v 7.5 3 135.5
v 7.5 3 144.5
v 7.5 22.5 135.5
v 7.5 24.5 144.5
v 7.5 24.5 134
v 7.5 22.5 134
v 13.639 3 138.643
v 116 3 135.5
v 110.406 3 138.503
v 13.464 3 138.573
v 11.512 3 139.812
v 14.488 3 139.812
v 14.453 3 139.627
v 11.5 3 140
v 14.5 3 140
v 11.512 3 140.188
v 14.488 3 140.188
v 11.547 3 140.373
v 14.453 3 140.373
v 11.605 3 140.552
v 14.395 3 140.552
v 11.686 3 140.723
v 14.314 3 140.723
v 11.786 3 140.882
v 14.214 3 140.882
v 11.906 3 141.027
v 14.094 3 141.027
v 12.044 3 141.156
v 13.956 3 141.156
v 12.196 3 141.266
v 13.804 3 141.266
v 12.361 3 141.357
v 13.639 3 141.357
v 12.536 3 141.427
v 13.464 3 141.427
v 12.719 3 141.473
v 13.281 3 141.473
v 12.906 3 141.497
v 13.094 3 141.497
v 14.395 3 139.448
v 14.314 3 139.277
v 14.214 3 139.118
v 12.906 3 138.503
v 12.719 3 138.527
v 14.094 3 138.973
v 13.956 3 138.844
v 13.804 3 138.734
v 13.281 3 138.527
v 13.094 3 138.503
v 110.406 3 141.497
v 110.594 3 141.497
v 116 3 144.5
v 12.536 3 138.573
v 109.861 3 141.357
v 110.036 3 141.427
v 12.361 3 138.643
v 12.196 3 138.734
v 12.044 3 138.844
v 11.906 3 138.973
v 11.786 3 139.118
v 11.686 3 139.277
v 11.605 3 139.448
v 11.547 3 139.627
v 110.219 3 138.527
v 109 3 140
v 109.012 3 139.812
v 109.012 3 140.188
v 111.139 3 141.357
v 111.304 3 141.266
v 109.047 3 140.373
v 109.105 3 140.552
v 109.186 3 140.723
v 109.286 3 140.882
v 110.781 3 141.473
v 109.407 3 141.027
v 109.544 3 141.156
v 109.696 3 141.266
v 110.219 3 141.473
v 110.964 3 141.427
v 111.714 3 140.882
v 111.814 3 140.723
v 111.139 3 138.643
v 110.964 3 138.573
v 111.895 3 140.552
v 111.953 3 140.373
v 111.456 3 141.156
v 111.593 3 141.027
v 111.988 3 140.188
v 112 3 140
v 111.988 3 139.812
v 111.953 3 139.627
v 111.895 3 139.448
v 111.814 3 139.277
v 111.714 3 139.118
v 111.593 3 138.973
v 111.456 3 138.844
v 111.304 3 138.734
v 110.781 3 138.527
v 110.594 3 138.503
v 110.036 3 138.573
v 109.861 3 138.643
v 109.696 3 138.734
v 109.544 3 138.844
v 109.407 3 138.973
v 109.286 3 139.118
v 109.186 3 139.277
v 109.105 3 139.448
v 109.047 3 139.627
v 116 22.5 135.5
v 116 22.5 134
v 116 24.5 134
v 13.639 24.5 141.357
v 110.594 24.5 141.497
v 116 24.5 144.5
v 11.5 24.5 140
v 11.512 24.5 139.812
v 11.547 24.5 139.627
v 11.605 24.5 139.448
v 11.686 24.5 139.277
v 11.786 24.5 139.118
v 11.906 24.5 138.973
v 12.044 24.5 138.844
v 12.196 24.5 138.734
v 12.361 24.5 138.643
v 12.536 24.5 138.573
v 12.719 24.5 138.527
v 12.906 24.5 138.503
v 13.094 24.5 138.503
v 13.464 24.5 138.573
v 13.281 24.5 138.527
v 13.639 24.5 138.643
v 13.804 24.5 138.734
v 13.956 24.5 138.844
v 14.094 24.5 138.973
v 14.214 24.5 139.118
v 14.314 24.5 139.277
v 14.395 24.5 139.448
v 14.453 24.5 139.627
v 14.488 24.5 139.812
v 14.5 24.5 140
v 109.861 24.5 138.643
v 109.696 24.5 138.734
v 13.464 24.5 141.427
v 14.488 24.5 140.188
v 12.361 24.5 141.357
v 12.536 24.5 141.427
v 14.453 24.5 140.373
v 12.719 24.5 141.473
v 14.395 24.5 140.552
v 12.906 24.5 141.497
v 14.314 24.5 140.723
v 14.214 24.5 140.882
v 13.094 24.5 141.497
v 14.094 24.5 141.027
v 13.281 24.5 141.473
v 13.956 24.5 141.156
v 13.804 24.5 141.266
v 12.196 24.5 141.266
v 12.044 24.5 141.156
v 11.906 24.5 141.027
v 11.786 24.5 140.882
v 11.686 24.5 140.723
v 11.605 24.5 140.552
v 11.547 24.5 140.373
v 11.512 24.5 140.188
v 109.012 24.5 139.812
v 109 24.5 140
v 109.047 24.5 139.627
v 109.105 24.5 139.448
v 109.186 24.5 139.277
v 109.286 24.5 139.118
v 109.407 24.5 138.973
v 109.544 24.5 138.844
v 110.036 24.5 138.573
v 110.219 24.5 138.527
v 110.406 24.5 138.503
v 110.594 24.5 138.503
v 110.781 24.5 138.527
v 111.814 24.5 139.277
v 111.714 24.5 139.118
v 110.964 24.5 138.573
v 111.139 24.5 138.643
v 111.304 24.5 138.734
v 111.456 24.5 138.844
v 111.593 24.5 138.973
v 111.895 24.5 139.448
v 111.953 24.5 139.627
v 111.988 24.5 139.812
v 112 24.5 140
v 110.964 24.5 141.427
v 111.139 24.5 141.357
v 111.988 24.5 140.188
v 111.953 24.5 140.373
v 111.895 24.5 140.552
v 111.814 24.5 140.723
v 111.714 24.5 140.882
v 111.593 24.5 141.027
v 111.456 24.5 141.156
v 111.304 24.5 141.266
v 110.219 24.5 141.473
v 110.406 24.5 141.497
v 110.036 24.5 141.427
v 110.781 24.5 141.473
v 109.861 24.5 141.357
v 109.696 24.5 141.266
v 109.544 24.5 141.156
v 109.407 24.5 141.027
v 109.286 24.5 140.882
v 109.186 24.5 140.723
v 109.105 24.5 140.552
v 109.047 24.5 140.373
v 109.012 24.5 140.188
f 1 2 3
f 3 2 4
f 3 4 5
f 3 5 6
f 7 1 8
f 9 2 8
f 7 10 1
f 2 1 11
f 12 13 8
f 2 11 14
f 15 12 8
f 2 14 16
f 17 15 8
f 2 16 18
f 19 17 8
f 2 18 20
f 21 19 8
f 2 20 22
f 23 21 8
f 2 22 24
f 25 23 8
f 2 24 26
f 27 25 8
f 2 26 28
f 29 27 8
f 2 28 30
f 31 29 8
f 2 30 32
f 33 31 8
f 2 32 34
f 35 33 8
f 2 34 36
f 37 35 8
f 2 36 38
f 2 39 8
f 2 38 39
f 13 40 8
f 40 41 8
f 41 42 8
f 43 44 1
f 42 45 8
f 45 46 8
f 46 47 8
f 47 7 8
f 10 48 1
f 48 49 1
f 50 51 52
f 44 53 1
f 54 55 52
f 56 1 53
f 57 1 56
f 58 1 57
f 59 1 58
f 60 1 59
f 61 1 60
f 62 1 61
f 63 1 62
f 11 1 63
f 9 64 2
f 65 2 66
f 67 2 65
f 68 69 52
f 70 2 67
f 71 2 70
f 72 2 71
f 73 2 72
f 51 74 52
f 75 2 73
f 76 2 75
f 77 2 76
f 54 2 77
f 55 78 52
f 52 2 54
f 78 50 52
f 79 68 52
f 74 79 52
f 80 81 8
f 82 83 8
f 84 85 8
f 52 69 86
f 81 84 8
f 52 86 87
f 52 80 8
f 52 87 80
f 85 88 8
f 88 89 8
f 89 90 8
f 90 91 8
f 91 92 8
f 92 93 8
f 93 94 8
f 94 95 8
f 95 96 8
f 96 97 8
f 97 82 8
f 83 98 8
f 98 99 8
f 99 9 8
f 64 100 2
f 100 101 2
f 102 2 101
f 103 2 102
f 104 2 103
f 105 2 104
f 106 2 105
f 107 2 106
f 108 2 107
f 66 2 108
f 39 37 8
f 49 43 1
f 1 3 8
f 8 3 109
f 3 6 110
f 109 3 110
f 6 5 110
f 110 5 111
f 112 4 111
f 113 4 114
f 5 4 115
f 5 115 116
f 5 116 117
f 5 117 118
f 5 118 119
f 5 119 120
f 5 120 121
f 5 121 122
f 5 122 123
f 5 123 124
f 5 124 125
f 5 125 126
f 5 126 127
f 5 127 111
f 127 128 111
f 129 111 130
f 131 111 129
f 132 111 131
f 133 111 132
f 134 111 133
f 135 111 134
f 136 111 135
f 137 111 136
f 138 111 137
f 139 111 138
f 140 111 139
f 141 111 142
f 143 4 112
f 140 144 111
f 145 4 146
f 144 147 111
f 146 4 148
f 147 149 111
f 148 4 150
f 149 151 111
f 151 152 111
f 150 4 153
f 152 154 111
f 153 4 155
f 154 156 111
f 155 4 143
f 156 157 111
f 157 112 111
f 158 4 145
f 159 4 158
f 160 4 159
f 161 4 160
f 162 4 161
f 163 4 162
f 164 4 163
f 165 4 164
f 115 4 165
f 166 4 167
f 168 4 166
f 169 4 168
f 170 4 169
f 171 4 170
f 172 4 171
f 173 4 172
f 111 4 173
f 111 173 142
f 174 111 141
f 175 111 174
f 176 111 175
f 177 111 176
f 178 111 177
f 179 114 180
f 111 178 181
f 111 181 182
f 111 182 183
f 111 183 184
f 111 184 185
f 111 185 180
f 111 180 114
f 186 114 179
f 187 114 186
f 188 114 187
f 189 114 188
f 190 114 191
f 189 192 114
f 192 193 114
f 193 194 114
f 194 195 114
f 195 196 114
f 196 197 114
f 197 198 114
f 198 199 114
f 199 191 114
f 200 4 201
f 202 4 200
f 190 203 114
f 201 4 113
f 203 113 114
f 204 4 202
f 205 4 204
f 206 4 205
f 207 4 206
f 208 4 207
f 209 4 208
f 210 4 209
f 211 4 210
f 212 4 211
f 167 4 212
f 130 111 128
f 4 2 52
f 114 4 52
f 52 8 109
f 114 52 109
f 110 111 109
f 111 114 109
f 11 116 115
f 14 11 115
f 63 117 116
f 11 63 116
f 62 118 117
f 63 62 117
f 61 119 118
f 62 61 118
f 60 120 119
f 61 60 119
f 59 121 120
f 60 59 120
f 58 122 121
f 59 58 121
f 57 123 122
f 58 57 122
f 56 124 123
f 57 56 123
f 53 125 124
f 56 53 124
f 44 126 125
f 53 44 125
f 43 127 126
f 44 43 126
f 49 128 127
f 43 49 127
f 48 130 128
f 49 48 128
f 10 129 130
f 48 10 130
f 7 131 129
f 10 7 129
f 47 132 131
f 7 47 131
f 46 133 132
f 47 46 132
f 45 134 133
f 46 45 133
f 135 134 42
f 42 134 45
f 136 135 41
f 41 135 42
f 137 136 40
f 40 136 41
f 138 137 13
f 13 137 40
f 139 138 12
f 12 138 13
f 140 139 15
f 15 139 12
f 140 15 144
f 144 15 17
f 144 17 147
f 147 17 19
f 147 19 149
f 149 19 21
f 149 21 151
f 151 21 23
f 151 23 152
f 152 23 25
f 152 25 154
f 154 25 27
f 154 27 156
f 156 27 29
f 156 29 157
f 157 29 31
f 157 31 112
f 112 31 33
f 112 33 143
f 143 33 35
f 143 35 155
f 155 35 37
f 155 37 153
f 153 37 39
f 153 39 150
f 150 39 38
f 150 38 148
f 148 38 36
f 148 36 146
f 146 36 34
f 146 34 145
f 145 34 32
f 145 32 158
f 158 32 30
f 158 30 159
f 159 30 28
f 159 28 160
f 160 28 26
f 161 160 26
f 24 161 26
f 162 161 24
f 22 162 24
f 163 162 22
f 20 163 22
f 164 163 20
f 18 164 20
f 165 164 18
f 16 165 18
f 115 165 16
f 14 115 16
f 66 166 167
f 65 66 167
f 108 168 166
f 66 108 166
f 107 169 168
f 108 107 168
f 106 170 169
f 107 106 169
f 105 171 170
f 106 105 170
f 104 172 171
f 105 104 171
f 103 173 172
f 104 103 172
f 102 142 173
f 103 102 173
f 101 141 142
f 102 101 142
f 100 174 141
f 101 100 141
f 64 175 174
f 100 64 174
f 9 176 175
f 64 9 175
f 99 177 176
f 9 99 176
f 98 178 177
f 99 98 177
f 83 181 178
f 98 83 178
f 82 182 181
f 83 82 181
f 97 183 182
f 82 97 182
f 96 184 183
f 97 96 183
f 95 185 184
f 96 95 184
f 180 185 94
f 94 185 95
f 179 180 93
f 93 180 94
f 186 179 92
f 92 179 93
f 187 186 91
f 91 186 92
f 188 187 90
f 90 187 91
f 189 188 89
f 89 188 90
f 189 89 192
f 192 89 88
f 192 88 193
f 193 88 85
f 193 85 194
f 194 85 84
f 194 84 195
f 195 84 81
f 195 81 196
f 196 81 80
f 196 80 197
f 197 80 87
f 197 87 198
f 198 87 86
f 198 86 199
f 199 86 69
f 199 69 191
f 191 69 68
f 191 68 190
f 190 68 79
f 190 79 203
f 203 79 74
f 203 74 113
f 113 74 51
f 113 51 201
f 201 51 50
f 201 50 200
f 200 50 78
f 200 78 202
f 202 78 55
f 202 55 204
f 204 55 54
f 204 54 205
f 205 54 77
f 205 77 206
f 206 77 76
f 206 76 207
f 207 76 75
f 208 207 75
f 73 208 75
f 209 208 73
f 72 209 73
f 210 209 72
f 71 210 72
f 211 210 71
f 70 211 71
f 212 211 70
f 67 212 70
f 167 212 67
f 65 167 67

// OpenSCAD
$fn = 50;

ra = 20;
rv = 30;

hia = 30;
bia = 17.0;
lia = 108.5;

sp = 3;

d = 3;

h = 150;
hl = 140;
b = bia + d + 2*sp;
l = lia + d + 2*sp;


ba = 7;
la = 10;

a1 = 4 + sp;
a2 = a1 + 33;
a3 = a2 + 54;

ang = 14;


spa = 2;
da = 0.7;

ro = 5;
bk = 5;
rs = 6/2;
rsb= 3.2/2;
lo = 75;

lls = 15;
angs = 8;

Wr = 8;

rla = 10;
rli = 1.7;
rlisd = 3;

rhla = 15;

anglh = 20;

%difference(){
	
	union(){
		rotate([angs,0,0]){
			difference(){
				cube([l+2*d,b+2*d,h+2*d]);
	
				translate([d,d,d]) cube([l,b+2*d,h+2*d]);
				translate([d+lls,-d,d]) cube([l-lls*2,b+2*d,h+2*d]);
	
			}
		}
		translate([0,-rla,rla]) rotate([0,90,0]) cylinder(r=rla,h=d);
		translate([0,-rla,0]) cube([d,rla,2*rla]);
		translate([lia+sp*2+d*2,-rla,rla]) rotate([0,90,0]) cylinder(r=rla,h=d);
		translate([lia+sp*2+d*2,-rla,0]) cube([d,rla,2*rla]);
		translate([0,-rhla,+h-d]) rotate([0,90,0]) cylinder(r=rhla,h=d);
		translate([0,-rhla,+h-d]) rotate([anglh+180,0,0])cube([d,rhla,3*rhla]);
		translate([lia+sp*2+d*2,-rhla,+h-d]) rotate([0,90,0]) cylinder(r=rhla,h=d);
		translate([lia+sp*2+d*2,-rhla,+h-d]) rotate([anglh+180,0,0])cube([d,rhla,3*rhla]);

	}
	translate([-1,-rla,rla]) rotate([0,90,0]) cylinder(r=rli,h=lia+sp*2+d*3+2);
	translate([-1,-rhla,h-d]) rotate([0,90,0]) cylinder(r=rli,h=lia+sp*2+d*3+2);
	translate([d,-rhla,+h-d]) rotate([0,90,0]) cylinder(r=rhla,h=lia+sp*3);

	translate([ra/2+d,-1,hl]) rotate([90,0,0]) cylinder(r=rlisd,h=h+d+2);
	translate([lia+sp*2+d*2-ra/2,-1,hl]) rotate([90,0,0]) cylinder(r=rlisd,h=h+d+2);

	translate([-d, 0, 0]) cube([l+4*d,b+4*d,h+4*d]);
}

%difference(){
	cube([l+2*d,b+2*d,h+2*d]);
	translate([d,d,d]) cube([l,b,h+2*d]);
	translate([d+ra,-2*d,rv-0.5*d]) cube([l-2*ra,b+sp+4*d,h+2*d]);
	translate([0,0,h+2*d]) rotate([ang,0,0]) translate([-d,0,-(h+2*d)])cube([l+4*d,b+2*d,h+2*d]);
	translate([ra/2+d,d+1,hl]) rotate([90,0,0]) cylinder(r=rli,h=d+2);
	translate([lia+sp*2+d*2-ra/2,d+1,hl]) rotate([90,0,0]) cylinder(r=rli,h=d+2);

	minkowski(){
		translate([2*d+Wr,2*d+Wr,-d]) cube([l-2*d-2*Wr,b-2*d-2*Wr,h+2*d]);
		cylinder(r=Wr, h=1);
	}
}

kd = 9;
kh = 19.5;
kkd = 2;
kkb = 1.5;
krl = 1.5;
color([1,0,0]){
	difference(){
		union(){
			translate([sp+d*1.5,d,140-kd/2]) cube([lia,kh,kd]);
			translate([sp+d*1.5,d+kh,140-kd/2-kkb]) cube([lia,kkd,kd+kkb]);
		}
		translate([ra/2+d,d+kh+1+kkd,140]) rotate([90,0,0]) #cylinder(r=krl,h=kh+2+kkd);
		translate([lia+sp*2+d*2-ra/2,d+kh+1+kkd,140]) rotate([90,0,0]) #cylinder(r=krl,h=kh+2+kkd);
	}
}
